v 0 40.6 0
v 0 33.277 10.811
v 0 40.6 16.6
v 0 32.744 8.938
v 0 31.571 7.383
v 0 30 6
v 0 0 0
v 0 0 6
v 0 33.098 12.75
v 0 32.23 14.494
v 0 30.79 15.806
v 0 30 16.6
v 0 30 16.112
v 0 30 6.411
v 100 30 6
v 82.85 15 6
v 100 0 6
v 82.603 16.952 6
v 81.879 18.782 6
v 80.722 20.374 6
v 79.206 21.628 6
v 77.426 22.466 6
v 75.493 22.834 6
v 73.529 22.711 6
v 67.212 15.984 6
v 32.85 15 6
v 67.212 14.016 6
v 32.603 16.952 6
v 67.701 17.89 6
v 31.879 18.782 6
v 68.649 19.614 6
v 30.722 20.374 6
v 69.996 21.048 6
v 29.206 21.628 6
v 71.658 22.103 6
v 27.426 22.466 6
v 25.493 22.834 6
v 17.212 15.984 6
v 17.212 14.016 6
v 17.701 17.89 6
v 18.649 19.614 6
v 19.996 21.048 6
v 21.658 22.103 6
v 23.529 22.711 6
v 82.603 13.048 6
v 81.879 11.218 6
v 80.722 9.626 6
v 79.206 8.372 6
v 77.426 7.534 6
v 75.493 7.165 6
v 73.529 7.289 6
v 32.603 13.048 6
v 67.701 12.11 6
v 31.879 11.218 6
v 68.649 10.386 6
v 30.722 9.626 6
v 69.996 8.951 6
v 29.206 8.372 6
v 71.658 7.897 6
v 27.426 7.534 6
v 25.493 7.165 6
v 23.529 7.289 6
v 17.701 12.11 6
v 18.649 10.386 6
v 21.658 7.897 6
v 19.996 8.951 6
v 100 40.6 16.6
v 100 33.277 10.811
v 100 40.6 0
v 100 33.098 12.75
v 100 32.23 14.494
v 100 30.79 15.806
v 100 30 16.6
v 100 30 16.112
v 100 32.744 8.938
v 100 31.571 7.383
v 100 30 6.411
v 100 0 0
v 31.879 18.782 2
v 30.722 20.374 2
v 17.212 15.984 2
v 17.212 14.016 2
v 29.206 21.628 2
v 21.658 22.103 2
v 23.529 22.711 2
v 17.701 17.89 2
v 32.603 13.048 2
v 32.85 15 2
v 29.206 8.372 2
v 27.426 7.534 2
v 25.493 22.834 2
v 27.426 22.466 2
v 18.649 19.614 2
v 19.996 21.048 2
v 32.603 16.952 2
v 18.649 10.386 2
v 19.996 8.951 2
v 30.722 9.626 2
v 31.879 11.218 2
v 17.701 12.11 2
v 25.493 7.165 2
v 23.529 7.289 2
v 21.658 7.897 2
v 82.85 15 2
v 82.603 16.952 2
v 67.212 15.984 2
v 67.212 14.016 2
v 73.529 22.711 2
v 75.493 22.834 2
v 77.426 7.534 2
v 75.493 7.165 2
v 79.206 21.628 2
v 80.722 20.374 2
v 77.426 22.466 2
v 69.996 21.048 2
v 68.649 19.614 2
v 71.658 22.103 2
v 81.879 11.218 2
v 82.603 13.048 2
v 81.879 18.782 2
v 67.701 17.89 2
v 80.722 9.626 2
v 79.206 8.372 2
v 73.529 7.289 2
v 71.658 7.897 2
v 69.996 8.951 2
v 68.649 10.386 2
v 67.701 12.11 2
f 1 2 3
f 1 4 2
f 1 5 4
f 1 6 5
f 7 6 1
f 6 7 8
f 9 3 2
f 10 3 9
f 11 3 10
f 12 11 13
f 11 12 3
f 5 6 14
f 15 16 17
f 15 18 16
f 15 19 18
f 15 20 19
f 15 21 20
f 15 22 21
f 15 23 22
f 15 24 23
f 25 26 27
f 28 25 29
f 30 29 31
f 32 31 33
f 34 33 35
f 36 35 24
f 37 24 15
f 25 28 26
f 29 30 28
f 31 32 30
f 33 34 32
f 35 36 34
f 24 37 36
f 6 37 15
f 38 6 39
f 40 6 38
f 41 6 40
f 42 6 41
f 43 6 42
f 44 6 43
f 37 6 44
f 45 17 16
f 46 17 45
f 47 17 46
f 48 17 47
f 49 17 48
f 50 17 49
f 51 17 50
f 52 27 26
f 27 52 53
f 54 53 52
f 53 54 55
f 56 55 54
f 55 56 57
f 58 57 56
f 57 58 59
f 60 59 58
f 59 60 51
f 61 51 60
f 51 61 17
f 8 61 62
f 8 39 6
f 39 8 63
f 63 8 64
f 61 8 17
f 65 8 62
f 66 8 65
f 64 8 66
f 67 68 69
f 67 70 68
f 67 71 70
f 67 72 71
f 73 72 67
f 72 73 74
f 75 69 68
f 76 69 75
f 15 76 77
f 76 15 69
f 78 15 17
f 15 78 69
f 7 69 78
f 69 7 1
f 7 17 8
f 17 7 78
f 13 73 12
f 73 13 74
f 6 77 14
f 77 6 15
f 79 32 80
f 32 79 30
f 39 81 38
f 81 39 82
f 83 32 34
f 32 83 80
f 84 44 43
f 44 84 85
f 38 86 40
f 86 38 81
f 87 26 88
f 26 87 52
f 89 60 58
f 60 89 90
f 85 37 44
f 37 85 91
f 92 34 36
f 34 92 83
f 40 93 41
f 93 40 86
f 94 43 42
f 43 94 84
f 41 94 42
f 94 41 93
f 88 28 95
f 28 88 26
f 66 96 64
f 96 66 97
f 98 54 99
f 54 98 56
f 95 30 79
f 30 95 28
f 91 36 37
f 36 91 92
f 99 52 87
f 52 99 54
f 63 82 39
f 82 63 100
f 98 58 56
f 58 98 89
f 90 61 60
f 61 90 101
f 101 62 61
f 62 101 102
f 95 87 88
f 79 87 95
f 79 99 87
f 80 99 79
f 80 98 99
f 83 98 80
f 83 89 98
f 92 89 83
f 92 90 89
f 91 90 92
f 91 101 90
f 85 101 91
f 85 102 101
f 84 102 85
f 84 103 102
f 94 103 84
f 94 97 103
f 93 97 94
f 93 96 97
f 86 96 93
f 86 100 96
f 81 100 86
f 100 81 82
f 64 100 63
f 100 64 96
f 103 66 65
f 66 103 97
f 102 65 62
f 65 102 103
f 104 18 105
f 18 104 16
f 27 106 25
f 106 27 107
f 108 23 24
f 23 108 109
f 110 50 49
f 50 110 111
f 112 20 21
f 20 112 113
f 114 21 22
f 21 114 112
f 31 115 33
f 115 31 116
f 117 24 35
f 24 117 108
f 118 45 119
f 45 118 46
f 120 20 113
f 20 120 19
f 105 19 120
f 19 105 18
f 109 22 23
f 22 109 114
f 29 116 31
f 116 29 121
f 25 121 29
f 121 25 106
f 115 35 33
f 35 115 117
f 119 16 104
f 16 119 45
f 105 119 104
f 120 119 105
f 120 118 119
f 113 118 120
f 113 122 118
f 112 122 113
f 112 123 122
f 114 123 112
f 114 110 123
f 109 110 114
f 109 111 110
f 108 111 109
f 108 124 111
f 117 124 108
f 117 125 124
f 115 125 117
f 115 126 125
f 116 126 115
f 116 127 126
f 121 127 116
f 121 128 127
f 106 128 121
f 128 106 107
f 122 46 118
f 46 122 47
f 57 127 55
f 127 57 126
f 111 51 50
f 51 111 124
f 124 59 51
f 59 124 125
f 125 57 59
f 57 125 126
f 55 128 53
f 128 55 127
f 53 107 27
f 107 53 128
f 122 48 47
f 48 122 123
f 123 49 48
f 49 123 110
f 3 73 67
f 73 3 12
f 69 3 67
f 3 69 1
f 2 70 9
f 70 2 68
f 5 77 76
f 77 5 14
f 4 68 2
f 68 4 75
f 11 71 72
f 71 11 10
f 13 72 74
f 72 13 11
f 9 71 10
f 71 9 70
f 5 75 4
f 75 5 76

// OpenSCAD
magnetBaseInnerDiameter = 15.4 + .3; //since sideways
magnetHeight = 4.0;
length = 100;
height = 6;
width = 30;
markerDiameter = 10.6; //TODO

union() {
    difference() {
        cube([length, width, height]);
        translate([length * .25, 15, height - magnetHeight])
            cylinder(magnetHeight, d=magnetBaseInnerDiameter);
        translate([length * .75, 15, height - magnetHeight])
            cylinder(magnetHeight, d=magnetBaseInnerDiameter);
    }
    difference() {
        rotate([0, 0, 0])
            translate([0, width, 0])
                cube([length, markerDiameter, height + markerDiameter]);
        translate([0, width - 2, height + markerDiameter/2])
            rotate([0, 90, 0])
                cylinder(length, d=markerDiameter);
    }

//    translate([0, width, -5])
//        rotate([60, 0, 0])
//            cube([length, markerDiameter, 20]);

}
